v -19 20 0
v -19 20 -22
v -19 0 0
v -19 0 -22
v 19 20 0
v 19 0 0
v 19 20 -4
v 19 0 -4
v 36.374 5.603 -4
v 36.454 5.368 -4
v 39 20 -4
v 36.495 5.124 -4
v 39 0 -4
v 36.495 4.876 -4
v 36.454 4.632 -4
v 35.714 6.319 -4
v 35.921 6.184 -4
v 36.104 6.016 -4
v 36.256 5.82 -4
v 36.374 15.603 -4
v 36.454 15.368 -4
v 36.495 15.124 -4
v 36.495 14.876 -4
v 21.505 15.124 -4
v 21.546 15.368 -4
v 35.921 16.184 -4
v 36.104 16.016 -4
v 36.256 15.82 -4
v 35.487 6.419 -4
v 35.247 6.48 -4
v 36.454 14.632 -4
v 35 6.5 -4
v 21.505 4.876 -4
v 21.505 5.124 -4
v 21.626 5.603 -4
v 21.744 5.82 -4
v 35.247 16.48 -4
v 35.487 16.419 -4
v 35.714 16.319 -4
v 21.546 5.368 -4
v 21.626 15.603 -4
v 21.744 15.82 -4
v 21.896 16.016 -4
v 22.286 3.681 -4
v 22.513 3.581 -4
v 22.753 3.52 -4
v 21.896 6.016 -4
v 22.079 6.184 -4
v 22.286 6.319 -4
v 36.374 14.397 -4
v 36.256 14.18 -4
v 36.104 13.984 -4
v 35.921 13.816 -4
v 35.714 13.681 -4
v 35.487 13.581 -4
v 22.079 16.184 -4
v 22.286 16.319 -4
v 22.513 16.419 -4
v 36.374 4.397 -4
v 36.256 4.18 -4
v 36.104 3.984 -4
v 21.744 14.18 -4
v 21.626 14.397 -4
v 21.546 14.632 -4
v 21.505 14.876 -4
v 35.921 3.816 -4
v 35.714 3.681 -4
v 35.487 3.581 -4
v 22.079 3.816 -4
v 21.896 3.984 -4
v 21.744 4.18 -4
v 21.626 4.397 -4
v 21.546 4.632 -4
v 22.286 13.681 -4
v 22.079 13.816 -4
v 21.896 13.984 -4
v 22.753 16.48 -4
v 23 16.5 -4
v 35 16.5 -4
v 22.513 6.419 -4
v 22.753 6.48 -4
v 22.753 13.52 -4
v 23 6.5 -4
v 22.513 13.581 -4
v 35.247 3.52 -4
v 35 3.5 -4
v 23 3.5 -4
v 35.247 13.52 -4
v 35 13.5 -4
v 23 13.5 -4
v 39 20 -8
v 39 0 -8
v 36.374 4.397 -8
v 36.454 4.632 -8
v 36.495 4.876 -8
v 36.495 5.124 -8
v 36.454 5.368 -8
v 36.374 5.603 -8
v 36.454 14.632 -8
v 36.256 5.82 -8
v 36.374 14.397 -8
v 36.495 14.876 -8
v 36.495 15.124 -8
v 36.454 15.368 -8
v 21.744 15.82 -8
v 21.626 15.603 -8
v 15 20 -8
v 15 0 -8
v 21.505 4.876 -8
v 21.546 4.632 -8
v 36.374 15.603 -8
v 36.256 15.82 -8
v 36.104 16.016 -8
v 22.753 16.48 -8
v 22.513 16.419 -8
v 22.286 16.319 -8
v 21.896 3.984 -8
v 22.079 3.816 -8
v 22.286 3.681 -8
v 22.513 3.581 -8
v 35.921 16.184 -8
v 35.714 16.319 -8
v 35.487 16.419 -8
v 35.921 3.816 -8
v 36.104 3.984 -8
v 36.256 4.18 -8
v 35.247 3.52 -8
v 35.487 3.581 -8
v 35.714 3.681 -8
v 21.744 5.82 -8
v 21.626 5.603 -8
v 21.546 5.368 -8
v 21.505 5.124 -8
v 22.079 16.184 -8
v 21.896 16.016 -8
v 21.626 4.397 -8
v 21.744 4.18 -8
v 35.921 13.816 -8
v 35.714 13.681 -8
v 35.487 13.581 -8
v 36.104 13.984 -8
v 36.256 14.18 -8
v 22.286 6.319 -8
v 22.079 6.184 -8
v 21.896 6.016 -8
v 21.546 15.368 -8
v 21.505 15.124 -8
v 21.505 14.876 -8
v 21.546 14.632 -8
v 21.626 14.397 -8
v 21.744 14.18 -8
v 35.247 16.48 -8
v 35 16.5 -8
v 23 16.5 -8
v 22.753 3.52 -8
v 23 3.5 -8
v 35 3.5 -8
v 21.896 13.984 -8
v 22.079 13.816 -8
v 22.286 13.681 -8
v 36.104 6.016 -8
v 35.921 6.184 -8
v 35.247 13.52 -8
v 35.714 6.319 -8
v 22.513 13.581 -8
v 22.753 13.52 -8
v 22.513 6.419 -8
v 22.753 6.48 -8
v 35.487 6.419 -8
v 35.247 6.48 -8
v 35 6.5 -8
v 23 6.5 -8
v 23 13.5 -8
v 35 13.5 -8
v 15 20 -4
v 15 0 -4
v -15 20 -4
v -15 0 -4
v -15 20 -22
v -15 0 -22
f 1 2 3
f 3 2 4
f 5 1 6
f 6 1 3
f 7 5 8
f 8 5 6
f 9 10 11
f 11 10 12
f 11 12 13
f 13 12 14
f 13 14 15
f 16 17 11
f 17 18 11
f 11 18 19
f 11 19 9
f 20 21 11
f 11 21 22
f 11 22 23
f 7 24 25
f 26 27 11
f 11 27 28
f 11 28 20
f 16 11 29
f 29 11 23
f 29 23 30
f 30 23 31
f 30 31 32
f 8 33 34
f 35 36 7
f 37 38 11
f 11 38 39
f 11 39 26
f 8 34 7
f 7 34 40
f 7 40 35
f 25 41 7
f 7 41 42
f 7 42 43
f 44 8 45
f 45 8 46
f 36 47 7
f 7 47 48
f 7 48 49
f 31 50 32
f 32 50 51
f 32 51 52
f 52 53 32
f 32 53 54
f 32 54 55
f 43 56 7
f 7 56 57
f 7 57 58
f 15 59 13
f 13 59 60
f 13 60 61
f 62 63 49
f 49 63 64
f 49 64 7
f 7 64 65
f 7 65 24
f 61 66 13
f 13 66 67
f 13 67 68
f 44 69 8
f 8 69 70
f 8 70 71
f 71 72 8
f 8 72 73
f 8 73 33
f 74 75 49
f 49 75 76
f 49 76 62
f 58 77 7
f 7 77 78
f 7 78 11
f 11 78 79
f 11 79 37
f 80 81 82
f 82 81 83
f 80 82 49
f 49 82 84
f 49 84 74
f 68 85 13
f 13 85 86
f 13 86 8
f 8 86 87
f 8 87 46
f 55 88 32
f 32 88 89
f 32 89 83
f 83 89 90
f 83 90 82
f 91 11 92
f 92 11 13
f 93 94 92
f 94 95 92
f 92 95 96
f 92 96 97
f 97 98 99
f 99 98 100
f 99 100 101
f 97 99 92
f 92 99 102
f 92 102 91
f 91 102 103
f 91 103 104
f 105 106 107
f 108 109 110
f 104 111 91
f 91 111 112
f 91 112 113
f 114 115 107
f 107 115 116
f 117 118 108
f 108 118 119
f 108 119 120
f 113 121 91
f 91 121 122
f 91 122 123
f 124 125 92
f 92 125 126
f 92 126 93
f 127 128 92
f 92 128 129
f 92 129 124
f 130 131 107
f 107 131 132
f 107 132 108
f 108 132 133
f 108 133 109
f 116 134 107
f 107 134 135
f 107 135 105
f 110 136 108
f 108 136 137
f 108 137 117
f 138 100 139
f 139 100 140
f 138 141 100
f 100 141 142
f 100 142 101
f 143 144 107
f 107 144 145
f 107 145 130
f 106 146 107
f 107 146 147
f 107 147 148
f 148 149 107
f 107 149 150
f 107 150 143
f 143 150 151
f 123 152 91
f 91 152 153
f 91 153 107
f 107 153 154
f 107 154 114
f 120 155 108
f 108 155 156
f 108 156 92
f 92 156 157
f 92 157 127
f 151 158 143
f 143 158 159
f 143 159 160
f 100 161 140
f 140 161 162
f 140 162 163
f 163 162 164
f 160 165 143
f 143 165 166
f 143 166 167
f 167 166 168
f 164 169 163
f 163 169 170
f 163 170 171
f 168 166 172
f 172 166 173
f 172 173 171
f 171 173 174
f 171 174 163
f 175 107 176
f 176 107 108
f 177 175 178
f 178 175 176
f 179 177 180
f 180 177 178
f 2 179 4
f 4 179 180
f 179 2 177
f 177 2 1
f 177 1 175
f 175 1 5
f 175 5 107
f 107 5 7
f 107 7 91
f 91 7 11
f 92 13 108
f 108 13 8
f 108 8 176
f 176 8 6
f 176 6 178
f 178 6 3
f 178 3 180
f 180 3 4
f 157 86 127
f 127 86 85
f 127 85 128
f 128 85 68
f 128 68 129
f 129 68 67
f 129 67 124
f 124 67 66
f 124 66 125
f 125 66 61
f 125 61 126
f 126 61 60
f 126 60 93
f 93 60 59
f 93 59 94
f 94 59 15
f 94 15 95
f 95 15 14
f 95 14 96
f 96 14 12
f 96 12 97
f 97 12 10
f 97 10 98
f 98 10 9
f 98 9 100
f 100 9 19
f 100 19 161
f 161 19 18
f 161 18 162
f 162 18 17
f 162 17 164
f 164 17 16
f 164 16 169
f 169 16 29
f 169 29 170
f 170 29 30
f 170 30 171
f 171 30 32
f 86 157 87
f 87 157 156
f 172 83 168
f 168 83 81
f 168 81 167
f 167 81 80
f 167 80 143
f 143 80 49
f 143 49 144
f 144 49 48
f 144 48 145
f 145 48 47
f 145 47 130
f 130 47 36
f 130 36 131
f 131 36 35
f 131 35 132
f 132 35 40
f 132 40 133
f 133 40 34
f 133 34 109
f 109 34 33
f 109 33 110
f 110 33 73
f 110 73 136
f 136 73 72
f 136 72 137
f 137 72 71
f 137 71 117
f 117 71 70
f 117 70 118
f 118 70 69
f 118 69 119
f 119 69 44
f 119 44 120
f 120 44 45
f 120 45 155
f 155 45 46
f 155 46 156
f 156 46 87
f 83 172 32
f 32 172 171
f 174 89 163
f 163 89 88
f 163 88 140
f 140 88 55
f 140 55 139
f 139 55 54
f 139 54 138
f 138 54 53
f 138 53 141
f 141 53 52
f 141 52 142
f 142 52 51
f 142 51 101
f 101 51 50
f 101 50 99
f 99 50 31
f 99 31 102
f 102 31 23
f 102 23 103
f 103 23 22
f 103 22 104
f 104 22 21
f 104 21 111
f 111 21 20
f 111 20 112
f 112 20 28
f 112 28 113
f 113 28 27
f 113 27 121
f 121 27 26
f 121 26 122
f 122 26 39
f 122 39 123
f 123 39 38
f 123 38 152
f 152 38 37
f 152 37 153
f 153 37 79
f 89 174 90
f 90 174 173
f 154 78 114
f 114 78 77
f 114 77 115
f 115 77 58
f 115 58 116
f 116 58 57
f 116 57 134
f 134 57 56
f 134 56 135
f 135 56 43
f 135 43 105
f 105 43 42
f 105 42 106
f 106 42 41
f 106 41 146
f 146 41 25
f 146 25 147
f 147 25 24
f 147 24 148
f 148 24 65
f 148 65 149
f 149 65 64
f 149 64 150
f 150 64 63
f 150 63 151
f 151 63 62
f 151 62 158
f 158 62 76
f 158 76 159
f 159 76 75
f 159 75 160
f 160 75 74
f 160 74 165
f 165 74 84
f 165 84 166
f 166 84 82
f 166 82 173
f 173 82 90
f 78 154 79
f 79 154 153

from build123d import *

# Parameters (mm, degrees)
SALIENTE_EXTRUIR1_DEPTH = 20
CORTAR_EXTRUIR1_DEPTH   = 20


with BuildPart() as part:
    # Croquis1 → Saliente-Extruir1 (new body)
    with BuildSketch(Plane(origin=(0, 0, 0), x_dir=(1, 0, 0), z_dir=(0, 1, 0))):
        Polygon((-19, 22), (-15, 22), (-15, 4), (15, 4), (15, 8), (39, 8), (39, 4), (19, 4), (19, 0), (-19, 0), align=None)
    extrude(amount=SALIENTE_EXTRUIR1_DEPTH)

    # Croquis2 → Cortar-Extruir1 (cut)
    with BuildSketch(Plane.XY.offset(-4)):
        with BuildLine():
            Line((35, 16.5), (23, 16.5))
            ThreePointArc((23, 16.5), (21.5, 15), (23, 13.5))
            Line((23, 13.5), (35, 13.5))
            ThreePointArc((35, 13.5), (36.5, 15), (35, 16.5))
        make_face()
        with BuildLine():
            Line((35, 3.5), (23, 3.5))
            ThreePointArc((23, 3.5), (21.5, 5), (23, 6.5))
            Line((23, 6.5), (35, 6.5))
            ThreePointArc((35, 6.5), (36.5, 5), (35, 3.5))
        make_face()
    extrude(amount=-CORTAR_EXTRUIR1_DEPTH, mode=Mode.SUBTRACT)


solid = part.part
